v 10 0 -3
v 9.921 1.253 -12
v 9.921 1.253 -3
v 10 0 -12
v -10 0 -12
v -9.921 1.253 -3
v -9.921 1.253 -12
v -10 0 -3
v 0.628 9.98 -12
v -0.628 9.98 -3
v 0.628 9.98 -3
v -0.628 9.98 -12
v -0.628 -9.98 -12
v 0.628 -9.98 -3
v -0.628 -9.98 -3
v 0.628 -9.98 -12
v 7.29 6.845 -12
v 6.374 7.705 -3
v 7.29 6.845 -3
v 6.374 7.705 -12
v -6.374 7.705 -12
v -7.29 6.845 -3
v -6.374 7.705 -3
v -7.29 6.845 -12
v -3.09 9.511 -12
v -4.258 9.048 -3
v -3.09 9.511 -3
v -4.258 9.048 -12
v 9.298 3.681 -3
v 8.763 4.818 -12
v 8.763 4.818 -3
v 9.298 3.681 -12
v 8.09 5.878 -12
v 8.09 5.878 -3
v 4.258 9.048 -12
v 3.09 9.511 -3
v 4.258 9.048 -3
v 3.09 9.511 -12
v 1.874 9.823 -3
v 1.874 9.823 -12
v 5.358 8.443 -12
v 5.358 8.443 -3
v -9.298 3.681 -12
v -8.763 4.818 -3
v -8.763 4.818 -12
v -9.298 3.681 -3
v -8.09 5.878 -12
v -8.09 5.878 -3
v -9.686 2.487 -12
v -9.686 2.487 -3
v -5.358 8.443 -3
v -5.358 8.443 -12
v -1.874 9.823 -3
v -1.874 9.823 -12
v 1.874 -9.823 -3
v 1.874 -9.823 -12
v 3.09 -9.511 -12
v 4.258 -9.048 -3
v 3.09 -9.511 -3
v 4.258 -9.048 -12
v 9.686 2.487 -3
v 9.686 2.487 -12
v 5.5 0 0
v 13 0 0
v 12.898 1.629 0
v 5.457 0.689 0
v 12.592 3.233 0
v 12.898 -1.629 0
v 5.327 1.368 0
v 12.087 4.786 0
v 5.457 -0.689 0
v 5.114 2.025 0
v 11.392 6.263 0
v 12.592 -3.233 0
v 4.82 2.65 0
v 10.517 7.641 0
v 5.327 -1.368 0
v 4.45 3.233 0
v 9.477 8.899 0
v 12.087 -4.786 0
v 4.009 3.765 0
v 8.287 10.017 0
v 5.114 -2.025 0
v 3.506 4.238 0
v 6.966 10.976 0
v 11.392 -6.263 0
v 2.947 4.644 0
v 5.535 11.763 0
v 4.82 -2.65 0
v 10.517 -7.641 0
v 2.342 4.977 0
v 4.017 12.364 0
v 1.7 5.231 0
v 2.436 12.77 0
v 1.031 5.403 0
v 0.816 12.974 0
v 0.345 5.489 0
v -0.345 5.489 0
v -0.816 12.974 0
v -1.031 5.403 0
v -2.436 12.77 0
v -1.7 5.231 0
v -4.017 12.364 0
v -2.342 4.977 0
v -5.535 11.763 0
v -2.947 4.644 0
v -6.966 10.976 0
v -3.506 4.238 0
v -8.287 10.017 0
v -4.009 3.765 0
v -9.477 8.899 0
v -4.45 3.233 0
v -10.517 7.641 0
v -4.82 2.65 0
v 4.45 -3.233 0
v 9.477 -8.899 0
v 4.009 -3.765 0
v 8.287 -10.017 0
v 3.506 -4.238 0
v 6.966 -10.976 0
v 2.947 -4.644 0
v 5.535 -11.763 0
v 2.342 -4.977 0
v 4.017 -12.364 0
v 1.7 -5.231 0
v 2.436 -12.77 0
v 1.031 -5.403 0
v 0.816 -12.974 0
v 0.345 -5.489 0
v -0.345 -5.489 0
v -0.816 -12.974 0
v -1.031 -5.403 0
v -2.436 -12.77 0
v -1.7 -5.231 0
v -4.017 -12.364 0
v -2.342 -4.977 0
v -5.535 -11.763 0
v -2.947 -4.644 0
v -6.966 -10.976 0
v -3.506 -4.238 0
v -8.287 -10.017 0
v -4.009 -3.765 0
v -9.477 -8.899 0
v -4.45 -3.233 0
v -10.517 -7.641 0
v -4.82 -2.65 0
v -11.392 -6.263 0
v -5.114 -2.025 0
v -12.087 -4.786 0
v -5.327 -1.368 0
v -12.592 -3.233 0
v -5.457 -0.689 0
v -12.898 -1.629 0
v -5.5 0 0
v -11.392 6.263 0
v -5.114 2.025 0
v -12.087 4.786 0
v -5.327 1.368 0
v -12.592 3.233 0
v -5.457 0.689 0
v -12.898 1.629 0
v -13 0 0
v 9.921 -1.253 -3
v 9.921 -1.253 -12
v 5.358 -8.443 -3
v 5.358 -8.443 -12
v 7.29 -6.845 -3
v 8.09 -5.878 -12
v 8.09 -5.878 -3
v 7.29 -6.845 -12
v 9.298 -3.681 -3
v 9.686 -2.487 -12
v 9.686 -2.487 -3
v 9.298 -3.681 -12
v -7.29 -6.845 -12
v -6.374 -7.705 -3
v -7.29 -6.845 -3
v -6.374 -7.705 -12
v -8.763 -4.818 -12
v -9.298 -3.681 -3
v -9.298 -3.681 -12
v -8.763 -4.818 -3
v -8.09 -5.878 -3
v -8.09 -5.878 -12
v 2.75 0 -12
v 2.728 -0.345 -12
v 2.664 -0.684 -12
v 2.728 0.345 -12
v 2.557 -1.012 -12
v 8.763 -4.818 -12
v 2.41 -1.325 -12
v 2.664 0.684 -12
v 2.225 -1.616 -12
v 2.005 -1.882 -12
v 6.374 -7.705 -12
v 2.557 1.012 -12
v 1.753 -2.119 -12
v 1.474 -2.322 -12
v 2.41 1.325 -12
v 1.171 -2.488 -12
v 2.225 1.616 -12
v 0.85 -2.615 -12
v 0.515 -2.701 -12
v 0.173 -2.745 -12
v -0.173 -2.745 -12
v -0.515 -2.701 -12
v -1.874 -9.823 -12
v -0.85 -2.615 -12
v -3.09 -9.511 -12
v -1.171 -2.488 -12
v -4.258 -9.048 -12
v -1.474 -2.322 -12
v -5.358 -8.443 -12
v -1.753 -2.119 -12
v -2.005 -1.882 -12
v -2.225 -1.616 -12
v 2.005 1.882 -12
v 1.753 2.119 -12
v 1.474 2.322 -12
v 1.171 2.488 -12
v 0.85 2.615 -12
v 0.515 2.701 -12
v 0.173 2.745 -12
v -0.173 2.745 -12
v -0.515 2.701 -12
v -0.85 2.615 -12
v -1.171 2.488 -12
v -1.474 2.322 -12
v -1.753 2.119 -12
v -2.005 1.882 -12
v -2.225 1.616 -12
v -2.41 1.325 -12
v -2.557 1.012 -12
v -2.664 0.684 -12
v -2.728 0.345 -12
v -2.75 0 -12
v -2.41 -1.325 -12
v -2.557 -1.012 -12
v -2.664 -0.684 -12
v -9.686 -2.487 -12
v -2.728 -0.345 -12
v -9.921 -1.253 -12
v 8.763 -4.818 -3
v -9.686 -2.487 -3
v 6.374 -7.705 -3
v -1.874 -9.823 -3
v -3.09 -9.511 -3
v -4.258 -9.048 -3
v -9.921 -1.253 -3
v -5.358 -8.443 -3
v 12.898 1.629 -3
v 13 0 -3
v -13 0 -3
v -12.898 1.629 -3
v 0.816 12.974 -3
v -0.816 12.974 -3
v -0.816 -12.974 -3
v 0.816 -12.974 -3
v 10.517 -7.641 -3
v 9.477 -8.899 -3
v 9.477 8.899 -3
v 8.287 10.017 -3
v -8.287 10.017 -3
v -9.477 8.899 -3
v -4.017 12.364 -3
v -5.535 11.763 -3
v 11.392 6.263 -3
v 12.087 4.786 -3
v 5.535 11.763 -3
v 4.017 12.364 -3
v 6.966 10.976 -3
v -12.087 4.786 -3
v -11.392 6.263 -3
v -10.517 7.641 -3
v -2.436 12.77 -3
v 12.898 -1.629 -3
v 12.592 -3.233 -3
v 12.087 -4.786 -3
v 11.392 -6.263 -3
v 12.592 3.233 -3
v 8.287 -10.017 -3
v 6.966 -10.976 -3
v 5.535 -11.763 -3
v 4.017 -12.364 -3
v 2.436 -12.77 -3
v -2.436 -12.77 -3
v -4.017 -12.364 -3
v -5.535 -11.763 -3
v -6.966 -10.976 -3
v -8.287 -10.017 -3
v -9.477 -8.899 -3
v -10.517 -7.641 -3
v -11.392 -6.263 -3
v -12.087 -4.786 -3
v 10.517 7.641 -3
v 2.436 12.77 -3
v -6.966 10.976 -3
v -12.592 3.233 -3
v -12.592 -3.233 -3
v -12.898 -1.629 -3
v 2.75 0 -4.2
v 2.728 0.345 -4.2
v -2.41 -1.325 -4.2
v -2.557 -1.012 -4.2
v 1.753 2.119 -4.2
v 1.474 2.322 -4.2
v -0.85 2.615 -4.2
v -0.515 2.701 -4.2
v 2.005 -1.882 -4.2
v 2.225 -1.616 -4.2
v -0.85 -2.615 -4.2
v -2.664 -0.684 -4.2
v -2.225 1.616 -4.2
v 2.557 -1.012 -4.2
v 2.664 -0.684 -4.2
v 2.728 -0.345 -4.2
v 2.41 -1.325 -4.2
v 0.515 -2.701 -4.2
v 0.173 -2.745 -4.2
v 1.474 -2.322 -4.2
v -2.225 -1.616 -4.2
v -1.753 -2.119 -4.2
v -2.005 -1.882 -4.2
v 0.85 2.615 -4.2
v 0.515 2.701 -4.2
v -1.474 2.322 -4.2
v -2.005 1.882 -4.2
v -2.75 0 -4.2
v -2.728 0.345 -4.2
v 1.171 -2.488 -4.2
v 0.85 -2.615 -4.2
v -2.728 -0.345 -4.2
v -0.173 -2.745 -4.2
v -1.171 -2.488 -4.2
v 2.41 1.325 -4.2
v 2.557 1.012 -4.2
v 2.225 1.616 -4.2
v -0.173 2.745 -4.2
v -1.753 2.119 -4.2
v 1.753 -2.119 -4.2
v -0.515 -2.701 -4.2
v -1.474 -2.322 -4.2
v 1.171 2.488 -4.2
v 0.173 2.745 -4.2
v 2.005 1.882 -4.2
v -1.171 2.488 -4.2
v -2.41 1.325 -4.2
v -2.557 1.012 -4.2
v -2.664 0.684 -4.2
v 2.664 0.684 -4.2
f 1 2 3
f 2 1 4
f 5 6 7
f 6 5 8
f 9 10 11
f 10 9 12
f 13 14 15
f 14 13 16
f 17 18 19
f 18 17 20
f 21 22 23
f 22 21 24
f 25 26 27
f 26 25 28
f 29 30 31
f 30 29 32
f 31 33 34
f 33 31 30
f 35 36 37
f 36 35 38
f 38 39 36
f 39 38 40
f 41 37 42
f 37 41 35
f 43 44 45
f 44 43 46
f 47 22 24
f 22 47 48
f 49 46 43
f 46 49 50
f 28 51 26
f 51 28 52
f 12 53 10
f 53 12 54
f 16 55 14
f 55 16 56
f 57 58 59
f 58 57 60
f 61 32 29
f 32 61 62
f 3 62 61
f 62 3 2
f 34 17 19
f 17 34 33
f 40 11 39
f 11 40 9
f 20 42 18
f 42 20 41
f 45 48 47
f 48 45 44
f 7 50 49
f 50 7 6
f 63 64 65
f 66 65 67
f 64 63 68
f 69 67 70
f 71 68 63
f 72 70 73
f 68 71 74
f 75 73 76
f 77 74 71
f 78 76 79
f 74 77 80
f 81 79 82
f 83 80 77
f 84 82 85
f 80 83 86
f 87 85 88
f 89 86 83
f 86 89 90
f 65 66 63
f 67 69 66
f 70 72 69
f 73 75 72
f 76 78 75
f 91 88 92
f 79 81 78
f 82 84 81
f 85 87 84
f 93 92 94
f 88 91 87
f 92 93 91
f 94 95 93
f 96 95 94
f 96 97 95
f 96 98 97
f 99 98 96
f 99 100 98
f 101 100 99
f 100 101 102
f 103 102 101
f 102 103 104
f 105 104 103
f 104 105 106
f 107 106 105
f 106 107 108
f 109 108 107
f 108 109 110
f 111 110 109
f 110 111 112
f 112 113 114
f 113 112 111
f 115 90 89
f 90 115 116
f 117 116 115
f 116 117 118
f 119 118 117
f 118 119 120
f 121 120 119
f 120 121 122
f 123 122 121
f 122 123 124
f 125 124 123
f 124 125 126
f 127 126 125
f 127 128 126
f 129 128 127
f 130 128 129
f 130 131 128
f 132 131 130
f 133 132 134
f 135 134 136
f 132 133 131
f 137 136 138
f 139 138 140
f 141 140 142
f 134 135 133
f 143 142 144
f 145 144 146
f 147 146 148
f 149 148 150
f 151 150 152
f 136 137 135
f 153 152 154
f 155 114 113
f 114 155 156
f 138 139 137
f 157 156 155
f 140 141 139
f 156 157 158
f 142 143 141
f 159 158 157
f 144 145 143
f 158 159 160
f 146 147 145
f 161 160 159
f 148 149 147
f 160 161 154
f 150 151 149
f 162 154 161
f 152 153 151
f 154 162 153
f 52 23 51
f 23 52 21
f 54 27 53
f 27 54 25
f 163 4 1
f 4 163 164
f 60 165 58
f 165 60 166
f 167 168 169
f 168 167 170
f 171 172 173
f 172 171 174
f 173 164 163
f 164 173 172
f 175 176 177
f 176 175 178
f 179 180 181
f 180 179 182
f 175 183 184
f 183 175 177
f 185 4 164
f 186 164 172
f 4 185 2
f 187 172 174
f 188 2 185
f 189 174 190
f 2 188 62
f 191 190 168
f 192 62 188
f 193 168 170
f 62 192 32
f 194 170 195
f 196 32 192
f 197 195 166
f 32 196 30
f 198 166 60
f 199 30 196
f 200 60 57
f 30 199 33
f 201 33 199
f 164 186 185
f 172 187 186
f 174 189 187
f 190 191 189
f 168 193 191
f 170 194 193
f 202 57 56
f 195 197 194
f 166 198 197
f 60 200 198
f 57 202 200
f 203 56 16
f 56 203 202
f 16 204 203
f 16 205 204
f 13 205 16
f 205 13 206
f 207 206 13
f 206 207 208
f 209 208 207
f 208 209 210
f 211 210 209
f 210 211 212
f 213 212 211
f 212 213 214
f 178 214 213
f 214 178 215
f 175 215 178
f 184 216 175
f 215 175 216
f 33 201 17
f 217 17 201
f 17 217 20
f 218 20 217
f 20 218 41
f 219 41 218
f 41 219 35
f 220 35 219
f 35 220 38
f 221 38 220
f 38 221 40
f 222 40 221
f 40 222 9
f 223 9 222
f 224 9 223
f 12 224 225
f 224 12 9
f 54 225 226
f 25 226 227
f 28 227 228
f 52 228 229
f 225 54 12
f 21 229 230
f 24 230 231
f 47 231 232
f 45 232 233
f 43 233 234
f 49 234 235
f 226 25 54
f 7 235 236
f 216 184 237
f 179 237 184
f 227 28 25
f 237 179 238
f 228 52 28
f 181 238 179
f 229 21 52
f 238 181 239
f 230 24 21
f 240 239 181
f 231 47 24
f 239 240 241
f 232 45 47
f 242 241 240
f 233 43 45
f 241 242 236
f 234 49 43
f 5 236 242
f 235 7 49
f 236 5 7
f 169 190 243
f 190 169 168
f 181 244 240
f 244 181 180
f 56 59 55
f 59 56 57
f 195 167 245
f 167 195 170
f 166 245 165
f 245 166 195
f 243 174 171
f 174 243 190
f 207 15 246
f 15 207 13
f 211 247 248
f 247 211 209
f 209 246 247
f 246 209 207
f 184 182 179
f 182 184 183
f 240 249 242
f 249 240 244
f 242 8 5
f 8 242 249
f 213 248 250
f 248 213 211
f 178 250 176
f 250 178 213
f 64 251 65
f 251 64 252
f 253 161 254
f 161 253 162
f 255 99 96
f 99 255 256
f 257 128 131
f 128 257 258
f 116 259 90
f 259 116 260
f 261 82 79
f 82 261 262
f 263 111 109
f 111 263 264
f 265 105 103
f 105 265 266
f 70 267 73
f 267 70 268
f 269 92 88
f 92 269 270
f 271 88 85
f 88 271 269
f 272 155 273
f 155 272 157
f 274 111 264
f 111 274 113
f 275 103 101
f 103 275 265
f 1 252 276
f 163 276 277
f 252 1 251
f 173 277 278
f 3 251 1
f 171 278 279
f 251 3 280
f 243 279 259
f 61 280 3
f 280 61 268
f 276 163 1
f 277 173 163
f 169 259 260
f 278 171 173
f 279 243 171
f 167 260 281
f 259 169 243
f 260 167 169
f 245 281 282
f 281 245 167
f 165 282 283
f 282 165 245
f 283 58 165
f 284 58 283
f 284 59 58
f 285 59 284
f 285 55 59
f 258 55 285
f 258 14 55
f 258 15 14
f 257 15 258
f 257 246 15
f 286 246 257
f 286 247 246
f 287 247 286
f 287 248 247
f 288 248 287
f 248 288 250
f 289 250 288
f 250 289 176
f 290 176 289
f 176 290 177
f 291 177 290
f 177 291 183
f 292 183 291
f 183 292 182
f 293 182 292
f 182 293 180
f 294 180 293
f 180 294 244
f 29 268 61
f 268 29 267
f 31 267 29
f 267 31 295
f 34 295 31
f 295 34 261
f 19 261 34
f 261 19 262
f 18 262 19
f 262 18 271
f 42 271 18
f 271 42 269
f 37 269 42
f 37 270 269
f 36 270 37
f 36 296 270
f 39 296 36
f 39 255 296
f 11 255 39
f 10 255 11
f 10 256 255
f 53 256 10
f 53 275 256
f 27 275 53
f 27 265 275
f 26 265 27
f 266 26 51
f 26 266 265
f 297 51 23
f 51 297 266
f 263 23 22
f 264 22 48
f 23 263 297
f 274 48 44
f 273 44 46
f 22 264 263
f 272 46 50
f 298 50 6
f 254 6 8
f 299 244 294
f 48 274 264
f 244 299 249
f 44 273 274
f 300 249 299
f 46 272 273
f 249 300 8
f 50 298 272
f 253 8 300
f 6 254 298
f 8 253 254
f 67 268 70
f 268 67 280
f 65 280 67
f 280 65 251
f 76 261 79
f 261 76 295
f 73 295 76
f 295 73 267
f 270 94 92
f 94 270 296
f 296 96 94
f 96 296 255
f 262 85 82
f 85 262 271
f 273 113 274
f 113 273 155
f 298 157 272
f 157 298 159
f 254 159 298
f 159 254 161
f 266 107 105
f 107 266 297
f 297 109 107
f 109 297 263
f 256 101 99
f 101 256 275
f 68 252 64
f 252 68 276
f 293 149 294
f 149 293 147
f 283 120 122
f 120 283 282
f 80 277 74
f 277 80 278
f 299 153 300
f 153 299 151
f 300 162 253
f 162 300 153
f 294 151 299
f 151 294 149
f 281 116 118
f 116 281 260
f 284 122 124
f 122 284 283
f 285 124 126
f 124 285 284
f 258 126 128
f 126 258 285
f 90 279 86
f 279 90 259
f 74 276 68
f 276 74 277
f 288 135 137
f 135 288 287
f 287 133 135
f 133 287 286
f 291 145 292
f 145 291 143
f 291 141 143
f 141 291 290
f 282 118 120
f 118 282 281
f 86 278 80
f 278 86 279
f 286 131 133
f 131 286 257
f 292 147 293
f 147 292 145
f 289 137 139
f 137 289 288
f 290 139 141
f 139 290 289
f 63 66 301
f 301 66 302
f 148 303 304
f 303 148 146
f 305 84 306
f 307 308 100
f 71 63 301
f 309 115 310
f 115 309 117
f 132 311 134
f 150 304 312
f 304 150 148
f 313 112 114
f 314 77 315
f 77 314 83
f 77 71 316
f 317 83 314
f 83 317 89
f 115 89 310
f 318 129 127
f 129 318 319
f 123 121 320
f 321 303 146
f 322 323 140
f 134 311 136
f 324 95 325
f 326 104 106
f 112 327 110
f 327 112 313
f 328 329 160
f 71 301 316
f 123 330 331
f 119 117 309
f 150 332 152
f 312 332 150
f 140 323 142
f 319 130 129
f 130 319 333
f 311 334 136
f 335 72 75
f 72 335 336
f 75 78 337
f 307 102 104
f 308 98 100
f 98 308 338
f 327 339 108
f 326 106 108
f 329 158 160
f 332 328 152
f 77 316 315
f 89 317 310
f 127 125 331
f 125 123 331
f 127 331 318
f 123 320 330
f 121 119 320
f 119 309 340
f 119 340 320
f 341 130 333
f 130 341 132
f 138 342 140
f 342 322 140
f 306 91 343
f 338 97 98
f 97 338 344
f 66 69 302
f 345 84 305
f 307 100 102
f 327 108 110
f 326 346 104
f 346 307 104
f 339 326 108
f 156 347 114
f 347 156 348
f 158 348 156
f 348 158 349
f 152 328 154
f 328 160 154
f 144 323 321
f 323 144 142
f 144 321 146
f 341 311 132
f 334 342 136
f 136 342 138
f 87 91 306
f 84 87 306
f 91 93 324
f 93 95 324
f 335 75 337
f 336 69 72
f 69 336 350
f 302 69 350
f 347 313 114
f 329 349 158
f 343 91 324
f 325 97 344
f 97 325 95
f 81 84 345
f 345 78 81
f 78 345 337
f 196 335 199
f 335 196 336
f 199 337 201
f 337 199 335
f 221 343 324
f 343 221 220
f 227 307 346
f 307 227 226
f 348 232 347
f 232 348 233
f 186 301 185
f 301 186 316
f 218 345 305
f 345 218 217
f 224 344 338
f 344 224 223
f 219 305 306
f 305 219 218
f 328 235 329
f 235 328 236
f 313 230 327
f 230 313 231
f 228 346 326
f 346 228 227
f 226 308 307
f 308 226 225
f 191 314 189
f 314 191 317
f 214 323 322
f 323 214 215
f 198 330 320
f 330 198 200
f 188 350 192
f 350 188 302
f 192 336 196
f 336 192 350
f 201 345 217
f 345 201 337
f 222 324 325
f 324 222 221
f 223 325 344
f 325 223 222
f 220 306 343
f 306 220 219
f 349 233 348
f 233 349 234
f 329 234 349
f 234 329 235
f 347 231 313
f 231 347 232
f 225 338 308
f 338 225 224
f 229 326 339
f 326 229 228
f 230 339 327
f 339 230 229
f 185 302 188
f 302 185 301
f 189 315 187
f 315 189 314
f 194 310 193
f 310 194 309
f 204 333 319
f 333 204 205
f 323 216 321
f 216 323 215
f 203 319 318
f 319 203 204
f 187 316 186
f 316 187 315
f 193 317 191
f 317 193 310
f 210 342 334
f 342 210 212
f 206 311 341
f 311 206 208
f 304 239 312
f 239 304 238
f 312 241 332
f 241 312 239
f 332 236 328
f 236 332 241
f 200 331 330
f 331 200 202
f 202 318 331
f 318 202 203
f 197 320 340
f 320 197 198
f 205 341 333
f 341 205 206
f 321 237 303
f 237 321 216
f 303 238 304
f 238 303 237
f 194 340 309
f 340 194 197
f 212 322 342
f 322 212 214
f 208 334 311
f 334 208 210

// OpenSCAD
$fn = 50;


difference() {
	union() {
		translate(v = [0, 0, -12.0000000000]) {
			cylinder(h = 12, r = 10.0000000000);
		}
		translate(v = [0, 0, -3.0000000000]) {
			cylinder(h = 3, r = 13.0000000000);
		}
	}
	union() {
		translate(v = [0, 0, 0]) {
			rotate(a = [0, 0, 0]) {
				difference() {
					union() {
						#translate(v = [0, 0, -12.0000000000]) {
							cylinder(h = 12, r = 2.2500000000);
						}
						#translate(v = [0, 0, -4.2000000000]) {
							cylinder(h = 4.2000000000, r1 = 2.7500000000, r2 = 5.5000000000);
						}
						#translate(v = [0, 0, -12.0000000000]) {
							cylinder(h = 12, r = 2.7500000000);
						}
						#translate(v = [0, 0, -12.0000000000]) {
							cylinder(h = 12, r = 2.2500000000);
						}
					}
					union();
				}
			}
		}
	}
}
